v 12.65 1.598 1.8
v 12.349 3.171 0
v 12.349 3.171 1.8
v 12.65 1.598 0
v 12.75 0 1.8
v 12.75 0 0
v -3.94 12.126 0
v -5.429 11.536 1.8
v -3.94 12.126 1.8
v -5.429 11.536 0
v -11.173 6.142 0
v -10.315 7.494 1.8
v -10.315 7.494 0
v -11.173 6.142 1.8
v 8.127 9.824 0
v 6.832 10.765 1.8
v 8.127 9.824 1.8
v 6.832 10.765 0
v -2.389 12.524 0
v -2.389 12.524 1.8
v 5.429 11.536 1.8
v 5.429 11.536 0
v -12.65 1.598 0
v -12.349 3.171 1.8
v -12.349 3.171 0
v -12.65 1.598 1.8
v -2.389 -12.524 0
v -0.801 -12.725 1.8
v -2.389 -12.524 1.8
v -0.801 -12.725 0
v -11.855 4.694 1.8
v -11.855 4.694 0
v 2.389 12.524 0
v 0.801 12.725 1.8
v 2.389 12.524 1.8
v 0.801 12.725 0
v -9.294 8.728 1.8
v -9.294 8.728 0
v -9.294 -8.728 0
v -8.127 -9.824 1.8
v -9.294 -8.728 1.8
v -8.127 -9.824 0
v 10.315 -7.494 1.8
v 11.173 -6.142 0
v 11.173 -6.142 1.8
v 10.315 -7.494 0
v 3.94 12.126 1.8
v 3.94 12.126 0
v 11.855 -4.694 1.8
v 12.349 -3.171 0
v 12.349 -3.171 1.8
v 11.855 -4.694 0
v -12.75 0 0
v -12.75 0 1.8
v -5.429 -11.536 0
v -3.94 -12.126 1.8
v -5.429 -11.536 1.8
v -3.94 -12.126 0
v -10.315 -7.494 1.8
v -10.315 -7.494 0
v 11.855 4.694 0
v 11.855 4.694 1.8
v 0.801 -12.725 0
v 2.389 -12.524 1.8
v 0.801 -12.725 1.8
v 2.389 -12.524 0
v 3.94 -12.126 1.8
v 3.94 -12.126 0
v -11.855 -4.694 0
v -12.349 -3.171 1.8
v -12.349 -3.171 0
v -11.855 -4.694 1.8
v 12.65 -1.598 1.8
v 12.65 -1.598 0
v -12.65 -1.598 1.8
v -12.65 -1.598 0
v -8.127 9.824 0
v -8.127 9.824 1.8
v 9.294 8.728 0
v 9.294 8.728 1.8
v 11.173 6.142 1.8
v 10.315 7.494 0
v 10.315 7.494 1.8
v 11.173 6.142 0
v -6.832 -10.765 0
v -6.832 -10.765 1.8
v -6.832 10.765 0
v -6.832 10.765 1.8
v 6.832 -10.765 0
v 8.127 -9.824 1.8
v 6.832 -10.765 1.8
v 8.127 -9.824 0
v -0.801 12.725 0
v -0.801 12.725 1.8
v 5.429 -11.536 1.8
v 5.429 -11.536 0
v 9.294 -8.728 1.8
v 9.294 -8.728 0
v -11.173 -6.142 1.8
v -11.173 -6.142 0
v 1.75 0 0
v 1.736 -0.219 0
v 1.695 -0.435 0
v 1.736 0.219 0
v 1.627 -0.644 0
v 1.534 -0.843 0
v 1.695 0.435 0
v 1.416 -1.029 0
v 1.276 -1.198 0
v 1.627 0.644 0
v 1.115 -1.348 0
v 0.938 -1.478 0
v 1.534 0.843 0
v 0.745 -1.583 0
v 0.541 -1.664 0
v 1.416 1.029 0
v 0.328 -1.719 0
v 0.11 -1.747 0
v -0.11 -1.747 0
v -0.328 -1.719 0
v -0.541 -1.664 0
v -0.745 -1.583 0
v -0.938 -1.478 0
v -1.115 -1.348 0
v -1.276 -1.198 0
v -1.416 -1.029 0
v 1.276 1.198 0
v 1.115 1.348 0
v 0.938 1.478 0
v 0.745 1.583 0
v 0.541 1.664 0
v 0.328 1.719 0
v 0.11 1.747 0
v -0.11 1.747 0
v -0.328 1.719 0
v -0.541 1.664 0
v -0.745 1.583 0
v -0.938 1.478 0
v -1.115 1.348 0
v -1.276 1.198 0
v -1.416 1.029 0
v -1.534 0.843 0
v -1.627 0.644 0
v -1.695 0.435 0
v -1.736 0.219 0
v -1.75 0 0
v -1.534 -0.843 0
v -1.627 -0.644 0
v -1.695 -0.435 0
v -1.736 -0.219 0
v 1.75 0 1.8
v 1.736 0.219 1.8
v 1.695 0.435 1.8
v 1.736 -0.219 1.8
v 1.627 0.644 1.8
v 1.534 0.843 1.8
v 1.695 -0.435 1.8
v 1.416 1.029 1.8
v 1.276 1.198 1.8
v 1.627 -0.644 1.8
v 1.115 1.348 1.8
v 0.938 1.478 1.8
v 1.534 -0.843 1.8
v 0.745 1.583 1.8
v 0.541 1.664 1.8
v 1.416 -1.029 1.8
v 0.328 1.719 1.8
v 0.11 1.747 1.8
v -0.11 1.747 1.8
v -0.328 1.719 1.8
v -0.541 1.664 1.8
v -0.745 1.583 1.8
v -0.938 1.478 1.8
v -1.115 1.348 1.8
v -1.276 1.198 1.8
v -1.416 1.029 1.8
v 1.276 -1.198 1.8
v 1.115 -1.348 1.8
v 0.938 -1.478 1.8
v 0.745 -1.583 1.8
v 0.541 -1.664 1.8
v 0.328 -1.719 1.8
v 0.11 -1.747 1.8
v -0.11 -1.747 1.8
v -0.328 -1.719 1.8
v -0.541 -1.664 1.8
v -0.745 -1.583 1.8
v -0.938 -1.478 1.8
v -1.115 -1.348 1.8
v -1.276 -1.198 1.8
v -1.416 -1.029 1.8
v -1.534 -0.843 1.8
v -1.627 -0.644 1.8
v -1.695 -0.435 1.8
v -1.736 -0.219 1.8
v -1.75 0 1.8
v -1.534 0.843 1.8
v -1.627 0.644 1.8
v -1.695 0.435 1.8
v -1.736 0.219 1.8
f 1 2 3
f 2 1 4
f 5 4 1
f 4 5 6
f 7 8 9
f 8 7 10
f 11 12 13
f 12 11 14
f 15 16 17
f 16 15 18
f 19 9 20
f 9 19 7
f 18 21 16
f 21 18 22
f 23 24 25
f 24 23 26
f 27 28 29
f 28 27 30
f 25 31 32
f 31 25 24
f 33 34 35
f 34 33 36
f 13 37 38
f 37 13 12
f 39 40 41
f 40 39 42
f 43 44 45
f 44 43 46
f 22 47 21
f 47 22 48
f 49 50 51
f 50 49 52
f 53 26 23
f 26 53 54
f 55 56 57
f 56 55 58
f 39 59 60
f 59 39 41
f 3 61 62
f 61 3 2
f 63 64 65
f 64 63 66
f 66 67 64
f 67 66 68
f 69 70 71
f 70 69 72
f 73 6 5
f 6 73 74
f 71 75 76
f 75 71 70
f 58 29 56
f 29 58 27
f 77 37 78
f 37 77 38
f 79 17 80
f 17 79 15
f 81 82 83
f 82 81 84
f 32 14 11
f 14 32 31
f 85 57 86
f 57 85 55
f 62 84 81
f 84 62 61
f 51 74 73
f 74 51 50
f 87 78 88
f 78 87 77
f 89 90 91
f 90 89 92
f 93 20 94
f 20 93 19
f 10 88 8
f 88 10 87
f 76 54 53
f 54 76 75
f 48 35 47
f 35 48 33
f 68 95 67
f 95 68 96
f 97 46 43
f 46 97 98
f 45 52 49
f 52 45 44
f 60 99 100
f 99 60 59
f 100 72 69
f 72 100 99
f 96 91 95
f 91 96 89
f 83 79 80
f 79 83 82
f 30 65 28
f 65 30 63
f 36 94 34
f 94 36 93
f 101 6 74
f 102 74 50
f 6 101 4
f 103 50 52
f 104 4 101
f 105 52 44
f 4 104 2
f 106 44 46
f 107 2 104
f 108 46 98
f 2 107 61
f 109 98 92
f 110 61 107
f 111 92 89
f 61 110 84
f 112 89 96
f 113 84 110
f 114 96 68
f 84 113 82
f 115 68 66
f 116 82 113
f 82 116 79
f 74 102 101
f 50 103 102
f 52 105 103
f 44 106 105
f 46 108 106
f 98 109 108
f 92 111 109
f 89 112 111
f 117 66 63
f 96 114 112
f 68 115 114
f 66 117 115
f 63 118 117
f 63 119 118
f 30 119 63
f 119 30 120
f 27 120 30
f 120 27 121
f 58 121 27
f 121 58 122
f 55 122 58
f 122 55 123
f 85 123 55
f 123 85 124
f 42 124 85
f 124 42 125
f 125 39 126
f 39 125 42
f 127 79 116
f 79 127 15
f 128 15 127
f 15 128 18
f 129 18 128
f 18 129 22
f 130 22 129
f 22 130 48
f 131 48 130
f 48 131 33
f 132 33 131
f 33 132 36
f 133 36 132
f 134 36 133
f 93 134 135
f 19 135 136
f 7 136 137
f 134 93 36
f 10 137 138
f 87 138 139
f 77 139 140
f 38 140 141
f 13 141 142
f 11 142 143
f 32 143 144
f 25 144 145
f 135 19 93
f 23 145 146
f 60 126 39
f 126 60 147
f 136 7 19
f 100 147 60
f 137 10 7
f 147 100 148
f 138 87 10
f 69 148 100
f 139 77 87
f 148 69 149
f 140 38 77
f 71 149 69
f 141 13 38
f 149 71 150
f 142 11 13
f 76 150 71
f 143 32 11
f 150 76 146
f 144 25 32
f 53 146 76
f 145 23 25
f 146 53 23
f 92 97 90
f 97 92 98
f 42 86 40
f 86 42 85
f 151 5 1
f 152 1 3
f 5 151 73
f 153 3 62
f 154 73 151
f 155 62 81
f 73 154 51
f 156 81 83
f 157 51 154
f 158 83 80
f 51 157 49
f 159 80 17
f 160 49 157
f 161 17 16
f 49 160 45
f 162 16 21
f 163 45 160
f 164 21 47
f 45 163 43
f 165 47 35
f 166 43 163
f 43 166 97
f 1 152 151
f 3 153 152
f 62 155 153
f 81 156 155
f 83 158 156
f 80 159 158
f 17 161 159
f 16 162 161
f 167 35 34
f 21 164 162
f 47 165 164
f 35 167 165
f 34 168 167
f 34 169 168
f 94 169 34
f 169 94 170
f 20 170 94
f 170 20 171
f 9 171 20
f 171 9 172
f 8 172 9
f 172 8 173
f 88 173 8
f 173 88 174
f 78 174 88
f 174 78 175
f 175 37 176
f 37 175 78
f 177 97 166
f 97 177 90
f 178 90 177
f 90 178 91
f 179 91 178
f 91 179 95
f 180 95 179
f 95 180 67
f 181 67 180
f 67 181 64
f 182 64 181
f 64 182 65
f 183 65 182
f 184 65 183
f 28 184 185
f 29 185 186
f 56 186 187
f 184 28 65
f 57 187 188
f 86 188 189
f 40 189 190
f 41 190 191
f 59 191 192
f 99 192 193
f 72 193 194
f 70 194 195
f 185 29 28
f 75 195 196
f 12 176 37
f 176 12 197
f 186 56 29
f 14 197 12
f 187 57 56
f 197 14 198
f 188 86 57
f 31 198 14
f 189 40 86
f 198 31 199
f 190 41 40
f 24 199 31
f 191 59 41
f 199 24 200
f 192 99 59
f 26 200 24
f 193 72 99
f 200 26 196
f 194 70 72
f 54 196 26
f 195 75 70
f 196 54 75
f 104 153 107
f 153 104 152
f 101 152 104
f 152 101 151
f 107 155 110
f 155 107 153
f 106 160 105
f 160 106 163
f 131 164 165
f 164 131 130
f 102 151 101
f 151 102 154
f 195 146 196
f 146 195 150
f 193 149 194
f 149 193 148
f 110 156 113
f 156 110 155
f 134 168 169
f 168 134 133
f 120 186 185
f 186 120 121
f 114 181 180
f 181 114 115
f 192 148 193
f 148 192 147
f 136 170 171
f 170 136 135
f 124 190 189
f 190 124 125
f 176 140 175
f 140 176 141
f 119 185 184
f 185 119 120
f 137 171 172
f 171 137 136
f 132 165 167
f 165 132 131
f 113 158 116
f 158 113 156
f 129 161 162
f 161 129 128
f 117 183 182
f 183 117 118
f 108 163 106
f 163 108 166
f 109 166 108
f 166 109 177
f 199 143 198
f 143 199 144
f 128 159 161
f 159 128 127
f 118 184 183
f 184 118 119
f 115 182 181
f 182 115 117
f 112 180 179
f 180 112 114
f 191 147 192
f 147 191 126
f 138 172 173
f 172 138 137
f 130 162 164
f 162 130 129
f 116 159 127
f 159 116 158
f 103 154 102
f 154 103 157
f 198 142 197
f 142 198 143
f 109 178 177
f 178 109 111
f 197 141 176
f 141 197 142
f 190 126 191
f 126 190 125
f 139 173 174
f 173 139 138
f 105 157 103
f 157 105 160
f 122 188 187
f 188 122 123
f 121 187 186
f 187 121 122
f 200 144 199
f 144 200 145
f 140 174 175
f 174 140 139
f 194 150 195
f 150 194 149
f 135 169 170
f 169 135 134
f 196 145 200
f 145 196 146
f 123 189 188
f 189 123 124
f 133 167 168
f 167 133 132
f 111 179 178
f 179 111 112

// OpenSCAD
$fn=50;
outDia=25.5;
inDia = 3.5;
thick=1.8;

difference() {
   cylinder(h=thick, d=outDia);
   translate([0,0,-0.1]) cylinder(h=thick+ 0.2, d=inDia);
}
